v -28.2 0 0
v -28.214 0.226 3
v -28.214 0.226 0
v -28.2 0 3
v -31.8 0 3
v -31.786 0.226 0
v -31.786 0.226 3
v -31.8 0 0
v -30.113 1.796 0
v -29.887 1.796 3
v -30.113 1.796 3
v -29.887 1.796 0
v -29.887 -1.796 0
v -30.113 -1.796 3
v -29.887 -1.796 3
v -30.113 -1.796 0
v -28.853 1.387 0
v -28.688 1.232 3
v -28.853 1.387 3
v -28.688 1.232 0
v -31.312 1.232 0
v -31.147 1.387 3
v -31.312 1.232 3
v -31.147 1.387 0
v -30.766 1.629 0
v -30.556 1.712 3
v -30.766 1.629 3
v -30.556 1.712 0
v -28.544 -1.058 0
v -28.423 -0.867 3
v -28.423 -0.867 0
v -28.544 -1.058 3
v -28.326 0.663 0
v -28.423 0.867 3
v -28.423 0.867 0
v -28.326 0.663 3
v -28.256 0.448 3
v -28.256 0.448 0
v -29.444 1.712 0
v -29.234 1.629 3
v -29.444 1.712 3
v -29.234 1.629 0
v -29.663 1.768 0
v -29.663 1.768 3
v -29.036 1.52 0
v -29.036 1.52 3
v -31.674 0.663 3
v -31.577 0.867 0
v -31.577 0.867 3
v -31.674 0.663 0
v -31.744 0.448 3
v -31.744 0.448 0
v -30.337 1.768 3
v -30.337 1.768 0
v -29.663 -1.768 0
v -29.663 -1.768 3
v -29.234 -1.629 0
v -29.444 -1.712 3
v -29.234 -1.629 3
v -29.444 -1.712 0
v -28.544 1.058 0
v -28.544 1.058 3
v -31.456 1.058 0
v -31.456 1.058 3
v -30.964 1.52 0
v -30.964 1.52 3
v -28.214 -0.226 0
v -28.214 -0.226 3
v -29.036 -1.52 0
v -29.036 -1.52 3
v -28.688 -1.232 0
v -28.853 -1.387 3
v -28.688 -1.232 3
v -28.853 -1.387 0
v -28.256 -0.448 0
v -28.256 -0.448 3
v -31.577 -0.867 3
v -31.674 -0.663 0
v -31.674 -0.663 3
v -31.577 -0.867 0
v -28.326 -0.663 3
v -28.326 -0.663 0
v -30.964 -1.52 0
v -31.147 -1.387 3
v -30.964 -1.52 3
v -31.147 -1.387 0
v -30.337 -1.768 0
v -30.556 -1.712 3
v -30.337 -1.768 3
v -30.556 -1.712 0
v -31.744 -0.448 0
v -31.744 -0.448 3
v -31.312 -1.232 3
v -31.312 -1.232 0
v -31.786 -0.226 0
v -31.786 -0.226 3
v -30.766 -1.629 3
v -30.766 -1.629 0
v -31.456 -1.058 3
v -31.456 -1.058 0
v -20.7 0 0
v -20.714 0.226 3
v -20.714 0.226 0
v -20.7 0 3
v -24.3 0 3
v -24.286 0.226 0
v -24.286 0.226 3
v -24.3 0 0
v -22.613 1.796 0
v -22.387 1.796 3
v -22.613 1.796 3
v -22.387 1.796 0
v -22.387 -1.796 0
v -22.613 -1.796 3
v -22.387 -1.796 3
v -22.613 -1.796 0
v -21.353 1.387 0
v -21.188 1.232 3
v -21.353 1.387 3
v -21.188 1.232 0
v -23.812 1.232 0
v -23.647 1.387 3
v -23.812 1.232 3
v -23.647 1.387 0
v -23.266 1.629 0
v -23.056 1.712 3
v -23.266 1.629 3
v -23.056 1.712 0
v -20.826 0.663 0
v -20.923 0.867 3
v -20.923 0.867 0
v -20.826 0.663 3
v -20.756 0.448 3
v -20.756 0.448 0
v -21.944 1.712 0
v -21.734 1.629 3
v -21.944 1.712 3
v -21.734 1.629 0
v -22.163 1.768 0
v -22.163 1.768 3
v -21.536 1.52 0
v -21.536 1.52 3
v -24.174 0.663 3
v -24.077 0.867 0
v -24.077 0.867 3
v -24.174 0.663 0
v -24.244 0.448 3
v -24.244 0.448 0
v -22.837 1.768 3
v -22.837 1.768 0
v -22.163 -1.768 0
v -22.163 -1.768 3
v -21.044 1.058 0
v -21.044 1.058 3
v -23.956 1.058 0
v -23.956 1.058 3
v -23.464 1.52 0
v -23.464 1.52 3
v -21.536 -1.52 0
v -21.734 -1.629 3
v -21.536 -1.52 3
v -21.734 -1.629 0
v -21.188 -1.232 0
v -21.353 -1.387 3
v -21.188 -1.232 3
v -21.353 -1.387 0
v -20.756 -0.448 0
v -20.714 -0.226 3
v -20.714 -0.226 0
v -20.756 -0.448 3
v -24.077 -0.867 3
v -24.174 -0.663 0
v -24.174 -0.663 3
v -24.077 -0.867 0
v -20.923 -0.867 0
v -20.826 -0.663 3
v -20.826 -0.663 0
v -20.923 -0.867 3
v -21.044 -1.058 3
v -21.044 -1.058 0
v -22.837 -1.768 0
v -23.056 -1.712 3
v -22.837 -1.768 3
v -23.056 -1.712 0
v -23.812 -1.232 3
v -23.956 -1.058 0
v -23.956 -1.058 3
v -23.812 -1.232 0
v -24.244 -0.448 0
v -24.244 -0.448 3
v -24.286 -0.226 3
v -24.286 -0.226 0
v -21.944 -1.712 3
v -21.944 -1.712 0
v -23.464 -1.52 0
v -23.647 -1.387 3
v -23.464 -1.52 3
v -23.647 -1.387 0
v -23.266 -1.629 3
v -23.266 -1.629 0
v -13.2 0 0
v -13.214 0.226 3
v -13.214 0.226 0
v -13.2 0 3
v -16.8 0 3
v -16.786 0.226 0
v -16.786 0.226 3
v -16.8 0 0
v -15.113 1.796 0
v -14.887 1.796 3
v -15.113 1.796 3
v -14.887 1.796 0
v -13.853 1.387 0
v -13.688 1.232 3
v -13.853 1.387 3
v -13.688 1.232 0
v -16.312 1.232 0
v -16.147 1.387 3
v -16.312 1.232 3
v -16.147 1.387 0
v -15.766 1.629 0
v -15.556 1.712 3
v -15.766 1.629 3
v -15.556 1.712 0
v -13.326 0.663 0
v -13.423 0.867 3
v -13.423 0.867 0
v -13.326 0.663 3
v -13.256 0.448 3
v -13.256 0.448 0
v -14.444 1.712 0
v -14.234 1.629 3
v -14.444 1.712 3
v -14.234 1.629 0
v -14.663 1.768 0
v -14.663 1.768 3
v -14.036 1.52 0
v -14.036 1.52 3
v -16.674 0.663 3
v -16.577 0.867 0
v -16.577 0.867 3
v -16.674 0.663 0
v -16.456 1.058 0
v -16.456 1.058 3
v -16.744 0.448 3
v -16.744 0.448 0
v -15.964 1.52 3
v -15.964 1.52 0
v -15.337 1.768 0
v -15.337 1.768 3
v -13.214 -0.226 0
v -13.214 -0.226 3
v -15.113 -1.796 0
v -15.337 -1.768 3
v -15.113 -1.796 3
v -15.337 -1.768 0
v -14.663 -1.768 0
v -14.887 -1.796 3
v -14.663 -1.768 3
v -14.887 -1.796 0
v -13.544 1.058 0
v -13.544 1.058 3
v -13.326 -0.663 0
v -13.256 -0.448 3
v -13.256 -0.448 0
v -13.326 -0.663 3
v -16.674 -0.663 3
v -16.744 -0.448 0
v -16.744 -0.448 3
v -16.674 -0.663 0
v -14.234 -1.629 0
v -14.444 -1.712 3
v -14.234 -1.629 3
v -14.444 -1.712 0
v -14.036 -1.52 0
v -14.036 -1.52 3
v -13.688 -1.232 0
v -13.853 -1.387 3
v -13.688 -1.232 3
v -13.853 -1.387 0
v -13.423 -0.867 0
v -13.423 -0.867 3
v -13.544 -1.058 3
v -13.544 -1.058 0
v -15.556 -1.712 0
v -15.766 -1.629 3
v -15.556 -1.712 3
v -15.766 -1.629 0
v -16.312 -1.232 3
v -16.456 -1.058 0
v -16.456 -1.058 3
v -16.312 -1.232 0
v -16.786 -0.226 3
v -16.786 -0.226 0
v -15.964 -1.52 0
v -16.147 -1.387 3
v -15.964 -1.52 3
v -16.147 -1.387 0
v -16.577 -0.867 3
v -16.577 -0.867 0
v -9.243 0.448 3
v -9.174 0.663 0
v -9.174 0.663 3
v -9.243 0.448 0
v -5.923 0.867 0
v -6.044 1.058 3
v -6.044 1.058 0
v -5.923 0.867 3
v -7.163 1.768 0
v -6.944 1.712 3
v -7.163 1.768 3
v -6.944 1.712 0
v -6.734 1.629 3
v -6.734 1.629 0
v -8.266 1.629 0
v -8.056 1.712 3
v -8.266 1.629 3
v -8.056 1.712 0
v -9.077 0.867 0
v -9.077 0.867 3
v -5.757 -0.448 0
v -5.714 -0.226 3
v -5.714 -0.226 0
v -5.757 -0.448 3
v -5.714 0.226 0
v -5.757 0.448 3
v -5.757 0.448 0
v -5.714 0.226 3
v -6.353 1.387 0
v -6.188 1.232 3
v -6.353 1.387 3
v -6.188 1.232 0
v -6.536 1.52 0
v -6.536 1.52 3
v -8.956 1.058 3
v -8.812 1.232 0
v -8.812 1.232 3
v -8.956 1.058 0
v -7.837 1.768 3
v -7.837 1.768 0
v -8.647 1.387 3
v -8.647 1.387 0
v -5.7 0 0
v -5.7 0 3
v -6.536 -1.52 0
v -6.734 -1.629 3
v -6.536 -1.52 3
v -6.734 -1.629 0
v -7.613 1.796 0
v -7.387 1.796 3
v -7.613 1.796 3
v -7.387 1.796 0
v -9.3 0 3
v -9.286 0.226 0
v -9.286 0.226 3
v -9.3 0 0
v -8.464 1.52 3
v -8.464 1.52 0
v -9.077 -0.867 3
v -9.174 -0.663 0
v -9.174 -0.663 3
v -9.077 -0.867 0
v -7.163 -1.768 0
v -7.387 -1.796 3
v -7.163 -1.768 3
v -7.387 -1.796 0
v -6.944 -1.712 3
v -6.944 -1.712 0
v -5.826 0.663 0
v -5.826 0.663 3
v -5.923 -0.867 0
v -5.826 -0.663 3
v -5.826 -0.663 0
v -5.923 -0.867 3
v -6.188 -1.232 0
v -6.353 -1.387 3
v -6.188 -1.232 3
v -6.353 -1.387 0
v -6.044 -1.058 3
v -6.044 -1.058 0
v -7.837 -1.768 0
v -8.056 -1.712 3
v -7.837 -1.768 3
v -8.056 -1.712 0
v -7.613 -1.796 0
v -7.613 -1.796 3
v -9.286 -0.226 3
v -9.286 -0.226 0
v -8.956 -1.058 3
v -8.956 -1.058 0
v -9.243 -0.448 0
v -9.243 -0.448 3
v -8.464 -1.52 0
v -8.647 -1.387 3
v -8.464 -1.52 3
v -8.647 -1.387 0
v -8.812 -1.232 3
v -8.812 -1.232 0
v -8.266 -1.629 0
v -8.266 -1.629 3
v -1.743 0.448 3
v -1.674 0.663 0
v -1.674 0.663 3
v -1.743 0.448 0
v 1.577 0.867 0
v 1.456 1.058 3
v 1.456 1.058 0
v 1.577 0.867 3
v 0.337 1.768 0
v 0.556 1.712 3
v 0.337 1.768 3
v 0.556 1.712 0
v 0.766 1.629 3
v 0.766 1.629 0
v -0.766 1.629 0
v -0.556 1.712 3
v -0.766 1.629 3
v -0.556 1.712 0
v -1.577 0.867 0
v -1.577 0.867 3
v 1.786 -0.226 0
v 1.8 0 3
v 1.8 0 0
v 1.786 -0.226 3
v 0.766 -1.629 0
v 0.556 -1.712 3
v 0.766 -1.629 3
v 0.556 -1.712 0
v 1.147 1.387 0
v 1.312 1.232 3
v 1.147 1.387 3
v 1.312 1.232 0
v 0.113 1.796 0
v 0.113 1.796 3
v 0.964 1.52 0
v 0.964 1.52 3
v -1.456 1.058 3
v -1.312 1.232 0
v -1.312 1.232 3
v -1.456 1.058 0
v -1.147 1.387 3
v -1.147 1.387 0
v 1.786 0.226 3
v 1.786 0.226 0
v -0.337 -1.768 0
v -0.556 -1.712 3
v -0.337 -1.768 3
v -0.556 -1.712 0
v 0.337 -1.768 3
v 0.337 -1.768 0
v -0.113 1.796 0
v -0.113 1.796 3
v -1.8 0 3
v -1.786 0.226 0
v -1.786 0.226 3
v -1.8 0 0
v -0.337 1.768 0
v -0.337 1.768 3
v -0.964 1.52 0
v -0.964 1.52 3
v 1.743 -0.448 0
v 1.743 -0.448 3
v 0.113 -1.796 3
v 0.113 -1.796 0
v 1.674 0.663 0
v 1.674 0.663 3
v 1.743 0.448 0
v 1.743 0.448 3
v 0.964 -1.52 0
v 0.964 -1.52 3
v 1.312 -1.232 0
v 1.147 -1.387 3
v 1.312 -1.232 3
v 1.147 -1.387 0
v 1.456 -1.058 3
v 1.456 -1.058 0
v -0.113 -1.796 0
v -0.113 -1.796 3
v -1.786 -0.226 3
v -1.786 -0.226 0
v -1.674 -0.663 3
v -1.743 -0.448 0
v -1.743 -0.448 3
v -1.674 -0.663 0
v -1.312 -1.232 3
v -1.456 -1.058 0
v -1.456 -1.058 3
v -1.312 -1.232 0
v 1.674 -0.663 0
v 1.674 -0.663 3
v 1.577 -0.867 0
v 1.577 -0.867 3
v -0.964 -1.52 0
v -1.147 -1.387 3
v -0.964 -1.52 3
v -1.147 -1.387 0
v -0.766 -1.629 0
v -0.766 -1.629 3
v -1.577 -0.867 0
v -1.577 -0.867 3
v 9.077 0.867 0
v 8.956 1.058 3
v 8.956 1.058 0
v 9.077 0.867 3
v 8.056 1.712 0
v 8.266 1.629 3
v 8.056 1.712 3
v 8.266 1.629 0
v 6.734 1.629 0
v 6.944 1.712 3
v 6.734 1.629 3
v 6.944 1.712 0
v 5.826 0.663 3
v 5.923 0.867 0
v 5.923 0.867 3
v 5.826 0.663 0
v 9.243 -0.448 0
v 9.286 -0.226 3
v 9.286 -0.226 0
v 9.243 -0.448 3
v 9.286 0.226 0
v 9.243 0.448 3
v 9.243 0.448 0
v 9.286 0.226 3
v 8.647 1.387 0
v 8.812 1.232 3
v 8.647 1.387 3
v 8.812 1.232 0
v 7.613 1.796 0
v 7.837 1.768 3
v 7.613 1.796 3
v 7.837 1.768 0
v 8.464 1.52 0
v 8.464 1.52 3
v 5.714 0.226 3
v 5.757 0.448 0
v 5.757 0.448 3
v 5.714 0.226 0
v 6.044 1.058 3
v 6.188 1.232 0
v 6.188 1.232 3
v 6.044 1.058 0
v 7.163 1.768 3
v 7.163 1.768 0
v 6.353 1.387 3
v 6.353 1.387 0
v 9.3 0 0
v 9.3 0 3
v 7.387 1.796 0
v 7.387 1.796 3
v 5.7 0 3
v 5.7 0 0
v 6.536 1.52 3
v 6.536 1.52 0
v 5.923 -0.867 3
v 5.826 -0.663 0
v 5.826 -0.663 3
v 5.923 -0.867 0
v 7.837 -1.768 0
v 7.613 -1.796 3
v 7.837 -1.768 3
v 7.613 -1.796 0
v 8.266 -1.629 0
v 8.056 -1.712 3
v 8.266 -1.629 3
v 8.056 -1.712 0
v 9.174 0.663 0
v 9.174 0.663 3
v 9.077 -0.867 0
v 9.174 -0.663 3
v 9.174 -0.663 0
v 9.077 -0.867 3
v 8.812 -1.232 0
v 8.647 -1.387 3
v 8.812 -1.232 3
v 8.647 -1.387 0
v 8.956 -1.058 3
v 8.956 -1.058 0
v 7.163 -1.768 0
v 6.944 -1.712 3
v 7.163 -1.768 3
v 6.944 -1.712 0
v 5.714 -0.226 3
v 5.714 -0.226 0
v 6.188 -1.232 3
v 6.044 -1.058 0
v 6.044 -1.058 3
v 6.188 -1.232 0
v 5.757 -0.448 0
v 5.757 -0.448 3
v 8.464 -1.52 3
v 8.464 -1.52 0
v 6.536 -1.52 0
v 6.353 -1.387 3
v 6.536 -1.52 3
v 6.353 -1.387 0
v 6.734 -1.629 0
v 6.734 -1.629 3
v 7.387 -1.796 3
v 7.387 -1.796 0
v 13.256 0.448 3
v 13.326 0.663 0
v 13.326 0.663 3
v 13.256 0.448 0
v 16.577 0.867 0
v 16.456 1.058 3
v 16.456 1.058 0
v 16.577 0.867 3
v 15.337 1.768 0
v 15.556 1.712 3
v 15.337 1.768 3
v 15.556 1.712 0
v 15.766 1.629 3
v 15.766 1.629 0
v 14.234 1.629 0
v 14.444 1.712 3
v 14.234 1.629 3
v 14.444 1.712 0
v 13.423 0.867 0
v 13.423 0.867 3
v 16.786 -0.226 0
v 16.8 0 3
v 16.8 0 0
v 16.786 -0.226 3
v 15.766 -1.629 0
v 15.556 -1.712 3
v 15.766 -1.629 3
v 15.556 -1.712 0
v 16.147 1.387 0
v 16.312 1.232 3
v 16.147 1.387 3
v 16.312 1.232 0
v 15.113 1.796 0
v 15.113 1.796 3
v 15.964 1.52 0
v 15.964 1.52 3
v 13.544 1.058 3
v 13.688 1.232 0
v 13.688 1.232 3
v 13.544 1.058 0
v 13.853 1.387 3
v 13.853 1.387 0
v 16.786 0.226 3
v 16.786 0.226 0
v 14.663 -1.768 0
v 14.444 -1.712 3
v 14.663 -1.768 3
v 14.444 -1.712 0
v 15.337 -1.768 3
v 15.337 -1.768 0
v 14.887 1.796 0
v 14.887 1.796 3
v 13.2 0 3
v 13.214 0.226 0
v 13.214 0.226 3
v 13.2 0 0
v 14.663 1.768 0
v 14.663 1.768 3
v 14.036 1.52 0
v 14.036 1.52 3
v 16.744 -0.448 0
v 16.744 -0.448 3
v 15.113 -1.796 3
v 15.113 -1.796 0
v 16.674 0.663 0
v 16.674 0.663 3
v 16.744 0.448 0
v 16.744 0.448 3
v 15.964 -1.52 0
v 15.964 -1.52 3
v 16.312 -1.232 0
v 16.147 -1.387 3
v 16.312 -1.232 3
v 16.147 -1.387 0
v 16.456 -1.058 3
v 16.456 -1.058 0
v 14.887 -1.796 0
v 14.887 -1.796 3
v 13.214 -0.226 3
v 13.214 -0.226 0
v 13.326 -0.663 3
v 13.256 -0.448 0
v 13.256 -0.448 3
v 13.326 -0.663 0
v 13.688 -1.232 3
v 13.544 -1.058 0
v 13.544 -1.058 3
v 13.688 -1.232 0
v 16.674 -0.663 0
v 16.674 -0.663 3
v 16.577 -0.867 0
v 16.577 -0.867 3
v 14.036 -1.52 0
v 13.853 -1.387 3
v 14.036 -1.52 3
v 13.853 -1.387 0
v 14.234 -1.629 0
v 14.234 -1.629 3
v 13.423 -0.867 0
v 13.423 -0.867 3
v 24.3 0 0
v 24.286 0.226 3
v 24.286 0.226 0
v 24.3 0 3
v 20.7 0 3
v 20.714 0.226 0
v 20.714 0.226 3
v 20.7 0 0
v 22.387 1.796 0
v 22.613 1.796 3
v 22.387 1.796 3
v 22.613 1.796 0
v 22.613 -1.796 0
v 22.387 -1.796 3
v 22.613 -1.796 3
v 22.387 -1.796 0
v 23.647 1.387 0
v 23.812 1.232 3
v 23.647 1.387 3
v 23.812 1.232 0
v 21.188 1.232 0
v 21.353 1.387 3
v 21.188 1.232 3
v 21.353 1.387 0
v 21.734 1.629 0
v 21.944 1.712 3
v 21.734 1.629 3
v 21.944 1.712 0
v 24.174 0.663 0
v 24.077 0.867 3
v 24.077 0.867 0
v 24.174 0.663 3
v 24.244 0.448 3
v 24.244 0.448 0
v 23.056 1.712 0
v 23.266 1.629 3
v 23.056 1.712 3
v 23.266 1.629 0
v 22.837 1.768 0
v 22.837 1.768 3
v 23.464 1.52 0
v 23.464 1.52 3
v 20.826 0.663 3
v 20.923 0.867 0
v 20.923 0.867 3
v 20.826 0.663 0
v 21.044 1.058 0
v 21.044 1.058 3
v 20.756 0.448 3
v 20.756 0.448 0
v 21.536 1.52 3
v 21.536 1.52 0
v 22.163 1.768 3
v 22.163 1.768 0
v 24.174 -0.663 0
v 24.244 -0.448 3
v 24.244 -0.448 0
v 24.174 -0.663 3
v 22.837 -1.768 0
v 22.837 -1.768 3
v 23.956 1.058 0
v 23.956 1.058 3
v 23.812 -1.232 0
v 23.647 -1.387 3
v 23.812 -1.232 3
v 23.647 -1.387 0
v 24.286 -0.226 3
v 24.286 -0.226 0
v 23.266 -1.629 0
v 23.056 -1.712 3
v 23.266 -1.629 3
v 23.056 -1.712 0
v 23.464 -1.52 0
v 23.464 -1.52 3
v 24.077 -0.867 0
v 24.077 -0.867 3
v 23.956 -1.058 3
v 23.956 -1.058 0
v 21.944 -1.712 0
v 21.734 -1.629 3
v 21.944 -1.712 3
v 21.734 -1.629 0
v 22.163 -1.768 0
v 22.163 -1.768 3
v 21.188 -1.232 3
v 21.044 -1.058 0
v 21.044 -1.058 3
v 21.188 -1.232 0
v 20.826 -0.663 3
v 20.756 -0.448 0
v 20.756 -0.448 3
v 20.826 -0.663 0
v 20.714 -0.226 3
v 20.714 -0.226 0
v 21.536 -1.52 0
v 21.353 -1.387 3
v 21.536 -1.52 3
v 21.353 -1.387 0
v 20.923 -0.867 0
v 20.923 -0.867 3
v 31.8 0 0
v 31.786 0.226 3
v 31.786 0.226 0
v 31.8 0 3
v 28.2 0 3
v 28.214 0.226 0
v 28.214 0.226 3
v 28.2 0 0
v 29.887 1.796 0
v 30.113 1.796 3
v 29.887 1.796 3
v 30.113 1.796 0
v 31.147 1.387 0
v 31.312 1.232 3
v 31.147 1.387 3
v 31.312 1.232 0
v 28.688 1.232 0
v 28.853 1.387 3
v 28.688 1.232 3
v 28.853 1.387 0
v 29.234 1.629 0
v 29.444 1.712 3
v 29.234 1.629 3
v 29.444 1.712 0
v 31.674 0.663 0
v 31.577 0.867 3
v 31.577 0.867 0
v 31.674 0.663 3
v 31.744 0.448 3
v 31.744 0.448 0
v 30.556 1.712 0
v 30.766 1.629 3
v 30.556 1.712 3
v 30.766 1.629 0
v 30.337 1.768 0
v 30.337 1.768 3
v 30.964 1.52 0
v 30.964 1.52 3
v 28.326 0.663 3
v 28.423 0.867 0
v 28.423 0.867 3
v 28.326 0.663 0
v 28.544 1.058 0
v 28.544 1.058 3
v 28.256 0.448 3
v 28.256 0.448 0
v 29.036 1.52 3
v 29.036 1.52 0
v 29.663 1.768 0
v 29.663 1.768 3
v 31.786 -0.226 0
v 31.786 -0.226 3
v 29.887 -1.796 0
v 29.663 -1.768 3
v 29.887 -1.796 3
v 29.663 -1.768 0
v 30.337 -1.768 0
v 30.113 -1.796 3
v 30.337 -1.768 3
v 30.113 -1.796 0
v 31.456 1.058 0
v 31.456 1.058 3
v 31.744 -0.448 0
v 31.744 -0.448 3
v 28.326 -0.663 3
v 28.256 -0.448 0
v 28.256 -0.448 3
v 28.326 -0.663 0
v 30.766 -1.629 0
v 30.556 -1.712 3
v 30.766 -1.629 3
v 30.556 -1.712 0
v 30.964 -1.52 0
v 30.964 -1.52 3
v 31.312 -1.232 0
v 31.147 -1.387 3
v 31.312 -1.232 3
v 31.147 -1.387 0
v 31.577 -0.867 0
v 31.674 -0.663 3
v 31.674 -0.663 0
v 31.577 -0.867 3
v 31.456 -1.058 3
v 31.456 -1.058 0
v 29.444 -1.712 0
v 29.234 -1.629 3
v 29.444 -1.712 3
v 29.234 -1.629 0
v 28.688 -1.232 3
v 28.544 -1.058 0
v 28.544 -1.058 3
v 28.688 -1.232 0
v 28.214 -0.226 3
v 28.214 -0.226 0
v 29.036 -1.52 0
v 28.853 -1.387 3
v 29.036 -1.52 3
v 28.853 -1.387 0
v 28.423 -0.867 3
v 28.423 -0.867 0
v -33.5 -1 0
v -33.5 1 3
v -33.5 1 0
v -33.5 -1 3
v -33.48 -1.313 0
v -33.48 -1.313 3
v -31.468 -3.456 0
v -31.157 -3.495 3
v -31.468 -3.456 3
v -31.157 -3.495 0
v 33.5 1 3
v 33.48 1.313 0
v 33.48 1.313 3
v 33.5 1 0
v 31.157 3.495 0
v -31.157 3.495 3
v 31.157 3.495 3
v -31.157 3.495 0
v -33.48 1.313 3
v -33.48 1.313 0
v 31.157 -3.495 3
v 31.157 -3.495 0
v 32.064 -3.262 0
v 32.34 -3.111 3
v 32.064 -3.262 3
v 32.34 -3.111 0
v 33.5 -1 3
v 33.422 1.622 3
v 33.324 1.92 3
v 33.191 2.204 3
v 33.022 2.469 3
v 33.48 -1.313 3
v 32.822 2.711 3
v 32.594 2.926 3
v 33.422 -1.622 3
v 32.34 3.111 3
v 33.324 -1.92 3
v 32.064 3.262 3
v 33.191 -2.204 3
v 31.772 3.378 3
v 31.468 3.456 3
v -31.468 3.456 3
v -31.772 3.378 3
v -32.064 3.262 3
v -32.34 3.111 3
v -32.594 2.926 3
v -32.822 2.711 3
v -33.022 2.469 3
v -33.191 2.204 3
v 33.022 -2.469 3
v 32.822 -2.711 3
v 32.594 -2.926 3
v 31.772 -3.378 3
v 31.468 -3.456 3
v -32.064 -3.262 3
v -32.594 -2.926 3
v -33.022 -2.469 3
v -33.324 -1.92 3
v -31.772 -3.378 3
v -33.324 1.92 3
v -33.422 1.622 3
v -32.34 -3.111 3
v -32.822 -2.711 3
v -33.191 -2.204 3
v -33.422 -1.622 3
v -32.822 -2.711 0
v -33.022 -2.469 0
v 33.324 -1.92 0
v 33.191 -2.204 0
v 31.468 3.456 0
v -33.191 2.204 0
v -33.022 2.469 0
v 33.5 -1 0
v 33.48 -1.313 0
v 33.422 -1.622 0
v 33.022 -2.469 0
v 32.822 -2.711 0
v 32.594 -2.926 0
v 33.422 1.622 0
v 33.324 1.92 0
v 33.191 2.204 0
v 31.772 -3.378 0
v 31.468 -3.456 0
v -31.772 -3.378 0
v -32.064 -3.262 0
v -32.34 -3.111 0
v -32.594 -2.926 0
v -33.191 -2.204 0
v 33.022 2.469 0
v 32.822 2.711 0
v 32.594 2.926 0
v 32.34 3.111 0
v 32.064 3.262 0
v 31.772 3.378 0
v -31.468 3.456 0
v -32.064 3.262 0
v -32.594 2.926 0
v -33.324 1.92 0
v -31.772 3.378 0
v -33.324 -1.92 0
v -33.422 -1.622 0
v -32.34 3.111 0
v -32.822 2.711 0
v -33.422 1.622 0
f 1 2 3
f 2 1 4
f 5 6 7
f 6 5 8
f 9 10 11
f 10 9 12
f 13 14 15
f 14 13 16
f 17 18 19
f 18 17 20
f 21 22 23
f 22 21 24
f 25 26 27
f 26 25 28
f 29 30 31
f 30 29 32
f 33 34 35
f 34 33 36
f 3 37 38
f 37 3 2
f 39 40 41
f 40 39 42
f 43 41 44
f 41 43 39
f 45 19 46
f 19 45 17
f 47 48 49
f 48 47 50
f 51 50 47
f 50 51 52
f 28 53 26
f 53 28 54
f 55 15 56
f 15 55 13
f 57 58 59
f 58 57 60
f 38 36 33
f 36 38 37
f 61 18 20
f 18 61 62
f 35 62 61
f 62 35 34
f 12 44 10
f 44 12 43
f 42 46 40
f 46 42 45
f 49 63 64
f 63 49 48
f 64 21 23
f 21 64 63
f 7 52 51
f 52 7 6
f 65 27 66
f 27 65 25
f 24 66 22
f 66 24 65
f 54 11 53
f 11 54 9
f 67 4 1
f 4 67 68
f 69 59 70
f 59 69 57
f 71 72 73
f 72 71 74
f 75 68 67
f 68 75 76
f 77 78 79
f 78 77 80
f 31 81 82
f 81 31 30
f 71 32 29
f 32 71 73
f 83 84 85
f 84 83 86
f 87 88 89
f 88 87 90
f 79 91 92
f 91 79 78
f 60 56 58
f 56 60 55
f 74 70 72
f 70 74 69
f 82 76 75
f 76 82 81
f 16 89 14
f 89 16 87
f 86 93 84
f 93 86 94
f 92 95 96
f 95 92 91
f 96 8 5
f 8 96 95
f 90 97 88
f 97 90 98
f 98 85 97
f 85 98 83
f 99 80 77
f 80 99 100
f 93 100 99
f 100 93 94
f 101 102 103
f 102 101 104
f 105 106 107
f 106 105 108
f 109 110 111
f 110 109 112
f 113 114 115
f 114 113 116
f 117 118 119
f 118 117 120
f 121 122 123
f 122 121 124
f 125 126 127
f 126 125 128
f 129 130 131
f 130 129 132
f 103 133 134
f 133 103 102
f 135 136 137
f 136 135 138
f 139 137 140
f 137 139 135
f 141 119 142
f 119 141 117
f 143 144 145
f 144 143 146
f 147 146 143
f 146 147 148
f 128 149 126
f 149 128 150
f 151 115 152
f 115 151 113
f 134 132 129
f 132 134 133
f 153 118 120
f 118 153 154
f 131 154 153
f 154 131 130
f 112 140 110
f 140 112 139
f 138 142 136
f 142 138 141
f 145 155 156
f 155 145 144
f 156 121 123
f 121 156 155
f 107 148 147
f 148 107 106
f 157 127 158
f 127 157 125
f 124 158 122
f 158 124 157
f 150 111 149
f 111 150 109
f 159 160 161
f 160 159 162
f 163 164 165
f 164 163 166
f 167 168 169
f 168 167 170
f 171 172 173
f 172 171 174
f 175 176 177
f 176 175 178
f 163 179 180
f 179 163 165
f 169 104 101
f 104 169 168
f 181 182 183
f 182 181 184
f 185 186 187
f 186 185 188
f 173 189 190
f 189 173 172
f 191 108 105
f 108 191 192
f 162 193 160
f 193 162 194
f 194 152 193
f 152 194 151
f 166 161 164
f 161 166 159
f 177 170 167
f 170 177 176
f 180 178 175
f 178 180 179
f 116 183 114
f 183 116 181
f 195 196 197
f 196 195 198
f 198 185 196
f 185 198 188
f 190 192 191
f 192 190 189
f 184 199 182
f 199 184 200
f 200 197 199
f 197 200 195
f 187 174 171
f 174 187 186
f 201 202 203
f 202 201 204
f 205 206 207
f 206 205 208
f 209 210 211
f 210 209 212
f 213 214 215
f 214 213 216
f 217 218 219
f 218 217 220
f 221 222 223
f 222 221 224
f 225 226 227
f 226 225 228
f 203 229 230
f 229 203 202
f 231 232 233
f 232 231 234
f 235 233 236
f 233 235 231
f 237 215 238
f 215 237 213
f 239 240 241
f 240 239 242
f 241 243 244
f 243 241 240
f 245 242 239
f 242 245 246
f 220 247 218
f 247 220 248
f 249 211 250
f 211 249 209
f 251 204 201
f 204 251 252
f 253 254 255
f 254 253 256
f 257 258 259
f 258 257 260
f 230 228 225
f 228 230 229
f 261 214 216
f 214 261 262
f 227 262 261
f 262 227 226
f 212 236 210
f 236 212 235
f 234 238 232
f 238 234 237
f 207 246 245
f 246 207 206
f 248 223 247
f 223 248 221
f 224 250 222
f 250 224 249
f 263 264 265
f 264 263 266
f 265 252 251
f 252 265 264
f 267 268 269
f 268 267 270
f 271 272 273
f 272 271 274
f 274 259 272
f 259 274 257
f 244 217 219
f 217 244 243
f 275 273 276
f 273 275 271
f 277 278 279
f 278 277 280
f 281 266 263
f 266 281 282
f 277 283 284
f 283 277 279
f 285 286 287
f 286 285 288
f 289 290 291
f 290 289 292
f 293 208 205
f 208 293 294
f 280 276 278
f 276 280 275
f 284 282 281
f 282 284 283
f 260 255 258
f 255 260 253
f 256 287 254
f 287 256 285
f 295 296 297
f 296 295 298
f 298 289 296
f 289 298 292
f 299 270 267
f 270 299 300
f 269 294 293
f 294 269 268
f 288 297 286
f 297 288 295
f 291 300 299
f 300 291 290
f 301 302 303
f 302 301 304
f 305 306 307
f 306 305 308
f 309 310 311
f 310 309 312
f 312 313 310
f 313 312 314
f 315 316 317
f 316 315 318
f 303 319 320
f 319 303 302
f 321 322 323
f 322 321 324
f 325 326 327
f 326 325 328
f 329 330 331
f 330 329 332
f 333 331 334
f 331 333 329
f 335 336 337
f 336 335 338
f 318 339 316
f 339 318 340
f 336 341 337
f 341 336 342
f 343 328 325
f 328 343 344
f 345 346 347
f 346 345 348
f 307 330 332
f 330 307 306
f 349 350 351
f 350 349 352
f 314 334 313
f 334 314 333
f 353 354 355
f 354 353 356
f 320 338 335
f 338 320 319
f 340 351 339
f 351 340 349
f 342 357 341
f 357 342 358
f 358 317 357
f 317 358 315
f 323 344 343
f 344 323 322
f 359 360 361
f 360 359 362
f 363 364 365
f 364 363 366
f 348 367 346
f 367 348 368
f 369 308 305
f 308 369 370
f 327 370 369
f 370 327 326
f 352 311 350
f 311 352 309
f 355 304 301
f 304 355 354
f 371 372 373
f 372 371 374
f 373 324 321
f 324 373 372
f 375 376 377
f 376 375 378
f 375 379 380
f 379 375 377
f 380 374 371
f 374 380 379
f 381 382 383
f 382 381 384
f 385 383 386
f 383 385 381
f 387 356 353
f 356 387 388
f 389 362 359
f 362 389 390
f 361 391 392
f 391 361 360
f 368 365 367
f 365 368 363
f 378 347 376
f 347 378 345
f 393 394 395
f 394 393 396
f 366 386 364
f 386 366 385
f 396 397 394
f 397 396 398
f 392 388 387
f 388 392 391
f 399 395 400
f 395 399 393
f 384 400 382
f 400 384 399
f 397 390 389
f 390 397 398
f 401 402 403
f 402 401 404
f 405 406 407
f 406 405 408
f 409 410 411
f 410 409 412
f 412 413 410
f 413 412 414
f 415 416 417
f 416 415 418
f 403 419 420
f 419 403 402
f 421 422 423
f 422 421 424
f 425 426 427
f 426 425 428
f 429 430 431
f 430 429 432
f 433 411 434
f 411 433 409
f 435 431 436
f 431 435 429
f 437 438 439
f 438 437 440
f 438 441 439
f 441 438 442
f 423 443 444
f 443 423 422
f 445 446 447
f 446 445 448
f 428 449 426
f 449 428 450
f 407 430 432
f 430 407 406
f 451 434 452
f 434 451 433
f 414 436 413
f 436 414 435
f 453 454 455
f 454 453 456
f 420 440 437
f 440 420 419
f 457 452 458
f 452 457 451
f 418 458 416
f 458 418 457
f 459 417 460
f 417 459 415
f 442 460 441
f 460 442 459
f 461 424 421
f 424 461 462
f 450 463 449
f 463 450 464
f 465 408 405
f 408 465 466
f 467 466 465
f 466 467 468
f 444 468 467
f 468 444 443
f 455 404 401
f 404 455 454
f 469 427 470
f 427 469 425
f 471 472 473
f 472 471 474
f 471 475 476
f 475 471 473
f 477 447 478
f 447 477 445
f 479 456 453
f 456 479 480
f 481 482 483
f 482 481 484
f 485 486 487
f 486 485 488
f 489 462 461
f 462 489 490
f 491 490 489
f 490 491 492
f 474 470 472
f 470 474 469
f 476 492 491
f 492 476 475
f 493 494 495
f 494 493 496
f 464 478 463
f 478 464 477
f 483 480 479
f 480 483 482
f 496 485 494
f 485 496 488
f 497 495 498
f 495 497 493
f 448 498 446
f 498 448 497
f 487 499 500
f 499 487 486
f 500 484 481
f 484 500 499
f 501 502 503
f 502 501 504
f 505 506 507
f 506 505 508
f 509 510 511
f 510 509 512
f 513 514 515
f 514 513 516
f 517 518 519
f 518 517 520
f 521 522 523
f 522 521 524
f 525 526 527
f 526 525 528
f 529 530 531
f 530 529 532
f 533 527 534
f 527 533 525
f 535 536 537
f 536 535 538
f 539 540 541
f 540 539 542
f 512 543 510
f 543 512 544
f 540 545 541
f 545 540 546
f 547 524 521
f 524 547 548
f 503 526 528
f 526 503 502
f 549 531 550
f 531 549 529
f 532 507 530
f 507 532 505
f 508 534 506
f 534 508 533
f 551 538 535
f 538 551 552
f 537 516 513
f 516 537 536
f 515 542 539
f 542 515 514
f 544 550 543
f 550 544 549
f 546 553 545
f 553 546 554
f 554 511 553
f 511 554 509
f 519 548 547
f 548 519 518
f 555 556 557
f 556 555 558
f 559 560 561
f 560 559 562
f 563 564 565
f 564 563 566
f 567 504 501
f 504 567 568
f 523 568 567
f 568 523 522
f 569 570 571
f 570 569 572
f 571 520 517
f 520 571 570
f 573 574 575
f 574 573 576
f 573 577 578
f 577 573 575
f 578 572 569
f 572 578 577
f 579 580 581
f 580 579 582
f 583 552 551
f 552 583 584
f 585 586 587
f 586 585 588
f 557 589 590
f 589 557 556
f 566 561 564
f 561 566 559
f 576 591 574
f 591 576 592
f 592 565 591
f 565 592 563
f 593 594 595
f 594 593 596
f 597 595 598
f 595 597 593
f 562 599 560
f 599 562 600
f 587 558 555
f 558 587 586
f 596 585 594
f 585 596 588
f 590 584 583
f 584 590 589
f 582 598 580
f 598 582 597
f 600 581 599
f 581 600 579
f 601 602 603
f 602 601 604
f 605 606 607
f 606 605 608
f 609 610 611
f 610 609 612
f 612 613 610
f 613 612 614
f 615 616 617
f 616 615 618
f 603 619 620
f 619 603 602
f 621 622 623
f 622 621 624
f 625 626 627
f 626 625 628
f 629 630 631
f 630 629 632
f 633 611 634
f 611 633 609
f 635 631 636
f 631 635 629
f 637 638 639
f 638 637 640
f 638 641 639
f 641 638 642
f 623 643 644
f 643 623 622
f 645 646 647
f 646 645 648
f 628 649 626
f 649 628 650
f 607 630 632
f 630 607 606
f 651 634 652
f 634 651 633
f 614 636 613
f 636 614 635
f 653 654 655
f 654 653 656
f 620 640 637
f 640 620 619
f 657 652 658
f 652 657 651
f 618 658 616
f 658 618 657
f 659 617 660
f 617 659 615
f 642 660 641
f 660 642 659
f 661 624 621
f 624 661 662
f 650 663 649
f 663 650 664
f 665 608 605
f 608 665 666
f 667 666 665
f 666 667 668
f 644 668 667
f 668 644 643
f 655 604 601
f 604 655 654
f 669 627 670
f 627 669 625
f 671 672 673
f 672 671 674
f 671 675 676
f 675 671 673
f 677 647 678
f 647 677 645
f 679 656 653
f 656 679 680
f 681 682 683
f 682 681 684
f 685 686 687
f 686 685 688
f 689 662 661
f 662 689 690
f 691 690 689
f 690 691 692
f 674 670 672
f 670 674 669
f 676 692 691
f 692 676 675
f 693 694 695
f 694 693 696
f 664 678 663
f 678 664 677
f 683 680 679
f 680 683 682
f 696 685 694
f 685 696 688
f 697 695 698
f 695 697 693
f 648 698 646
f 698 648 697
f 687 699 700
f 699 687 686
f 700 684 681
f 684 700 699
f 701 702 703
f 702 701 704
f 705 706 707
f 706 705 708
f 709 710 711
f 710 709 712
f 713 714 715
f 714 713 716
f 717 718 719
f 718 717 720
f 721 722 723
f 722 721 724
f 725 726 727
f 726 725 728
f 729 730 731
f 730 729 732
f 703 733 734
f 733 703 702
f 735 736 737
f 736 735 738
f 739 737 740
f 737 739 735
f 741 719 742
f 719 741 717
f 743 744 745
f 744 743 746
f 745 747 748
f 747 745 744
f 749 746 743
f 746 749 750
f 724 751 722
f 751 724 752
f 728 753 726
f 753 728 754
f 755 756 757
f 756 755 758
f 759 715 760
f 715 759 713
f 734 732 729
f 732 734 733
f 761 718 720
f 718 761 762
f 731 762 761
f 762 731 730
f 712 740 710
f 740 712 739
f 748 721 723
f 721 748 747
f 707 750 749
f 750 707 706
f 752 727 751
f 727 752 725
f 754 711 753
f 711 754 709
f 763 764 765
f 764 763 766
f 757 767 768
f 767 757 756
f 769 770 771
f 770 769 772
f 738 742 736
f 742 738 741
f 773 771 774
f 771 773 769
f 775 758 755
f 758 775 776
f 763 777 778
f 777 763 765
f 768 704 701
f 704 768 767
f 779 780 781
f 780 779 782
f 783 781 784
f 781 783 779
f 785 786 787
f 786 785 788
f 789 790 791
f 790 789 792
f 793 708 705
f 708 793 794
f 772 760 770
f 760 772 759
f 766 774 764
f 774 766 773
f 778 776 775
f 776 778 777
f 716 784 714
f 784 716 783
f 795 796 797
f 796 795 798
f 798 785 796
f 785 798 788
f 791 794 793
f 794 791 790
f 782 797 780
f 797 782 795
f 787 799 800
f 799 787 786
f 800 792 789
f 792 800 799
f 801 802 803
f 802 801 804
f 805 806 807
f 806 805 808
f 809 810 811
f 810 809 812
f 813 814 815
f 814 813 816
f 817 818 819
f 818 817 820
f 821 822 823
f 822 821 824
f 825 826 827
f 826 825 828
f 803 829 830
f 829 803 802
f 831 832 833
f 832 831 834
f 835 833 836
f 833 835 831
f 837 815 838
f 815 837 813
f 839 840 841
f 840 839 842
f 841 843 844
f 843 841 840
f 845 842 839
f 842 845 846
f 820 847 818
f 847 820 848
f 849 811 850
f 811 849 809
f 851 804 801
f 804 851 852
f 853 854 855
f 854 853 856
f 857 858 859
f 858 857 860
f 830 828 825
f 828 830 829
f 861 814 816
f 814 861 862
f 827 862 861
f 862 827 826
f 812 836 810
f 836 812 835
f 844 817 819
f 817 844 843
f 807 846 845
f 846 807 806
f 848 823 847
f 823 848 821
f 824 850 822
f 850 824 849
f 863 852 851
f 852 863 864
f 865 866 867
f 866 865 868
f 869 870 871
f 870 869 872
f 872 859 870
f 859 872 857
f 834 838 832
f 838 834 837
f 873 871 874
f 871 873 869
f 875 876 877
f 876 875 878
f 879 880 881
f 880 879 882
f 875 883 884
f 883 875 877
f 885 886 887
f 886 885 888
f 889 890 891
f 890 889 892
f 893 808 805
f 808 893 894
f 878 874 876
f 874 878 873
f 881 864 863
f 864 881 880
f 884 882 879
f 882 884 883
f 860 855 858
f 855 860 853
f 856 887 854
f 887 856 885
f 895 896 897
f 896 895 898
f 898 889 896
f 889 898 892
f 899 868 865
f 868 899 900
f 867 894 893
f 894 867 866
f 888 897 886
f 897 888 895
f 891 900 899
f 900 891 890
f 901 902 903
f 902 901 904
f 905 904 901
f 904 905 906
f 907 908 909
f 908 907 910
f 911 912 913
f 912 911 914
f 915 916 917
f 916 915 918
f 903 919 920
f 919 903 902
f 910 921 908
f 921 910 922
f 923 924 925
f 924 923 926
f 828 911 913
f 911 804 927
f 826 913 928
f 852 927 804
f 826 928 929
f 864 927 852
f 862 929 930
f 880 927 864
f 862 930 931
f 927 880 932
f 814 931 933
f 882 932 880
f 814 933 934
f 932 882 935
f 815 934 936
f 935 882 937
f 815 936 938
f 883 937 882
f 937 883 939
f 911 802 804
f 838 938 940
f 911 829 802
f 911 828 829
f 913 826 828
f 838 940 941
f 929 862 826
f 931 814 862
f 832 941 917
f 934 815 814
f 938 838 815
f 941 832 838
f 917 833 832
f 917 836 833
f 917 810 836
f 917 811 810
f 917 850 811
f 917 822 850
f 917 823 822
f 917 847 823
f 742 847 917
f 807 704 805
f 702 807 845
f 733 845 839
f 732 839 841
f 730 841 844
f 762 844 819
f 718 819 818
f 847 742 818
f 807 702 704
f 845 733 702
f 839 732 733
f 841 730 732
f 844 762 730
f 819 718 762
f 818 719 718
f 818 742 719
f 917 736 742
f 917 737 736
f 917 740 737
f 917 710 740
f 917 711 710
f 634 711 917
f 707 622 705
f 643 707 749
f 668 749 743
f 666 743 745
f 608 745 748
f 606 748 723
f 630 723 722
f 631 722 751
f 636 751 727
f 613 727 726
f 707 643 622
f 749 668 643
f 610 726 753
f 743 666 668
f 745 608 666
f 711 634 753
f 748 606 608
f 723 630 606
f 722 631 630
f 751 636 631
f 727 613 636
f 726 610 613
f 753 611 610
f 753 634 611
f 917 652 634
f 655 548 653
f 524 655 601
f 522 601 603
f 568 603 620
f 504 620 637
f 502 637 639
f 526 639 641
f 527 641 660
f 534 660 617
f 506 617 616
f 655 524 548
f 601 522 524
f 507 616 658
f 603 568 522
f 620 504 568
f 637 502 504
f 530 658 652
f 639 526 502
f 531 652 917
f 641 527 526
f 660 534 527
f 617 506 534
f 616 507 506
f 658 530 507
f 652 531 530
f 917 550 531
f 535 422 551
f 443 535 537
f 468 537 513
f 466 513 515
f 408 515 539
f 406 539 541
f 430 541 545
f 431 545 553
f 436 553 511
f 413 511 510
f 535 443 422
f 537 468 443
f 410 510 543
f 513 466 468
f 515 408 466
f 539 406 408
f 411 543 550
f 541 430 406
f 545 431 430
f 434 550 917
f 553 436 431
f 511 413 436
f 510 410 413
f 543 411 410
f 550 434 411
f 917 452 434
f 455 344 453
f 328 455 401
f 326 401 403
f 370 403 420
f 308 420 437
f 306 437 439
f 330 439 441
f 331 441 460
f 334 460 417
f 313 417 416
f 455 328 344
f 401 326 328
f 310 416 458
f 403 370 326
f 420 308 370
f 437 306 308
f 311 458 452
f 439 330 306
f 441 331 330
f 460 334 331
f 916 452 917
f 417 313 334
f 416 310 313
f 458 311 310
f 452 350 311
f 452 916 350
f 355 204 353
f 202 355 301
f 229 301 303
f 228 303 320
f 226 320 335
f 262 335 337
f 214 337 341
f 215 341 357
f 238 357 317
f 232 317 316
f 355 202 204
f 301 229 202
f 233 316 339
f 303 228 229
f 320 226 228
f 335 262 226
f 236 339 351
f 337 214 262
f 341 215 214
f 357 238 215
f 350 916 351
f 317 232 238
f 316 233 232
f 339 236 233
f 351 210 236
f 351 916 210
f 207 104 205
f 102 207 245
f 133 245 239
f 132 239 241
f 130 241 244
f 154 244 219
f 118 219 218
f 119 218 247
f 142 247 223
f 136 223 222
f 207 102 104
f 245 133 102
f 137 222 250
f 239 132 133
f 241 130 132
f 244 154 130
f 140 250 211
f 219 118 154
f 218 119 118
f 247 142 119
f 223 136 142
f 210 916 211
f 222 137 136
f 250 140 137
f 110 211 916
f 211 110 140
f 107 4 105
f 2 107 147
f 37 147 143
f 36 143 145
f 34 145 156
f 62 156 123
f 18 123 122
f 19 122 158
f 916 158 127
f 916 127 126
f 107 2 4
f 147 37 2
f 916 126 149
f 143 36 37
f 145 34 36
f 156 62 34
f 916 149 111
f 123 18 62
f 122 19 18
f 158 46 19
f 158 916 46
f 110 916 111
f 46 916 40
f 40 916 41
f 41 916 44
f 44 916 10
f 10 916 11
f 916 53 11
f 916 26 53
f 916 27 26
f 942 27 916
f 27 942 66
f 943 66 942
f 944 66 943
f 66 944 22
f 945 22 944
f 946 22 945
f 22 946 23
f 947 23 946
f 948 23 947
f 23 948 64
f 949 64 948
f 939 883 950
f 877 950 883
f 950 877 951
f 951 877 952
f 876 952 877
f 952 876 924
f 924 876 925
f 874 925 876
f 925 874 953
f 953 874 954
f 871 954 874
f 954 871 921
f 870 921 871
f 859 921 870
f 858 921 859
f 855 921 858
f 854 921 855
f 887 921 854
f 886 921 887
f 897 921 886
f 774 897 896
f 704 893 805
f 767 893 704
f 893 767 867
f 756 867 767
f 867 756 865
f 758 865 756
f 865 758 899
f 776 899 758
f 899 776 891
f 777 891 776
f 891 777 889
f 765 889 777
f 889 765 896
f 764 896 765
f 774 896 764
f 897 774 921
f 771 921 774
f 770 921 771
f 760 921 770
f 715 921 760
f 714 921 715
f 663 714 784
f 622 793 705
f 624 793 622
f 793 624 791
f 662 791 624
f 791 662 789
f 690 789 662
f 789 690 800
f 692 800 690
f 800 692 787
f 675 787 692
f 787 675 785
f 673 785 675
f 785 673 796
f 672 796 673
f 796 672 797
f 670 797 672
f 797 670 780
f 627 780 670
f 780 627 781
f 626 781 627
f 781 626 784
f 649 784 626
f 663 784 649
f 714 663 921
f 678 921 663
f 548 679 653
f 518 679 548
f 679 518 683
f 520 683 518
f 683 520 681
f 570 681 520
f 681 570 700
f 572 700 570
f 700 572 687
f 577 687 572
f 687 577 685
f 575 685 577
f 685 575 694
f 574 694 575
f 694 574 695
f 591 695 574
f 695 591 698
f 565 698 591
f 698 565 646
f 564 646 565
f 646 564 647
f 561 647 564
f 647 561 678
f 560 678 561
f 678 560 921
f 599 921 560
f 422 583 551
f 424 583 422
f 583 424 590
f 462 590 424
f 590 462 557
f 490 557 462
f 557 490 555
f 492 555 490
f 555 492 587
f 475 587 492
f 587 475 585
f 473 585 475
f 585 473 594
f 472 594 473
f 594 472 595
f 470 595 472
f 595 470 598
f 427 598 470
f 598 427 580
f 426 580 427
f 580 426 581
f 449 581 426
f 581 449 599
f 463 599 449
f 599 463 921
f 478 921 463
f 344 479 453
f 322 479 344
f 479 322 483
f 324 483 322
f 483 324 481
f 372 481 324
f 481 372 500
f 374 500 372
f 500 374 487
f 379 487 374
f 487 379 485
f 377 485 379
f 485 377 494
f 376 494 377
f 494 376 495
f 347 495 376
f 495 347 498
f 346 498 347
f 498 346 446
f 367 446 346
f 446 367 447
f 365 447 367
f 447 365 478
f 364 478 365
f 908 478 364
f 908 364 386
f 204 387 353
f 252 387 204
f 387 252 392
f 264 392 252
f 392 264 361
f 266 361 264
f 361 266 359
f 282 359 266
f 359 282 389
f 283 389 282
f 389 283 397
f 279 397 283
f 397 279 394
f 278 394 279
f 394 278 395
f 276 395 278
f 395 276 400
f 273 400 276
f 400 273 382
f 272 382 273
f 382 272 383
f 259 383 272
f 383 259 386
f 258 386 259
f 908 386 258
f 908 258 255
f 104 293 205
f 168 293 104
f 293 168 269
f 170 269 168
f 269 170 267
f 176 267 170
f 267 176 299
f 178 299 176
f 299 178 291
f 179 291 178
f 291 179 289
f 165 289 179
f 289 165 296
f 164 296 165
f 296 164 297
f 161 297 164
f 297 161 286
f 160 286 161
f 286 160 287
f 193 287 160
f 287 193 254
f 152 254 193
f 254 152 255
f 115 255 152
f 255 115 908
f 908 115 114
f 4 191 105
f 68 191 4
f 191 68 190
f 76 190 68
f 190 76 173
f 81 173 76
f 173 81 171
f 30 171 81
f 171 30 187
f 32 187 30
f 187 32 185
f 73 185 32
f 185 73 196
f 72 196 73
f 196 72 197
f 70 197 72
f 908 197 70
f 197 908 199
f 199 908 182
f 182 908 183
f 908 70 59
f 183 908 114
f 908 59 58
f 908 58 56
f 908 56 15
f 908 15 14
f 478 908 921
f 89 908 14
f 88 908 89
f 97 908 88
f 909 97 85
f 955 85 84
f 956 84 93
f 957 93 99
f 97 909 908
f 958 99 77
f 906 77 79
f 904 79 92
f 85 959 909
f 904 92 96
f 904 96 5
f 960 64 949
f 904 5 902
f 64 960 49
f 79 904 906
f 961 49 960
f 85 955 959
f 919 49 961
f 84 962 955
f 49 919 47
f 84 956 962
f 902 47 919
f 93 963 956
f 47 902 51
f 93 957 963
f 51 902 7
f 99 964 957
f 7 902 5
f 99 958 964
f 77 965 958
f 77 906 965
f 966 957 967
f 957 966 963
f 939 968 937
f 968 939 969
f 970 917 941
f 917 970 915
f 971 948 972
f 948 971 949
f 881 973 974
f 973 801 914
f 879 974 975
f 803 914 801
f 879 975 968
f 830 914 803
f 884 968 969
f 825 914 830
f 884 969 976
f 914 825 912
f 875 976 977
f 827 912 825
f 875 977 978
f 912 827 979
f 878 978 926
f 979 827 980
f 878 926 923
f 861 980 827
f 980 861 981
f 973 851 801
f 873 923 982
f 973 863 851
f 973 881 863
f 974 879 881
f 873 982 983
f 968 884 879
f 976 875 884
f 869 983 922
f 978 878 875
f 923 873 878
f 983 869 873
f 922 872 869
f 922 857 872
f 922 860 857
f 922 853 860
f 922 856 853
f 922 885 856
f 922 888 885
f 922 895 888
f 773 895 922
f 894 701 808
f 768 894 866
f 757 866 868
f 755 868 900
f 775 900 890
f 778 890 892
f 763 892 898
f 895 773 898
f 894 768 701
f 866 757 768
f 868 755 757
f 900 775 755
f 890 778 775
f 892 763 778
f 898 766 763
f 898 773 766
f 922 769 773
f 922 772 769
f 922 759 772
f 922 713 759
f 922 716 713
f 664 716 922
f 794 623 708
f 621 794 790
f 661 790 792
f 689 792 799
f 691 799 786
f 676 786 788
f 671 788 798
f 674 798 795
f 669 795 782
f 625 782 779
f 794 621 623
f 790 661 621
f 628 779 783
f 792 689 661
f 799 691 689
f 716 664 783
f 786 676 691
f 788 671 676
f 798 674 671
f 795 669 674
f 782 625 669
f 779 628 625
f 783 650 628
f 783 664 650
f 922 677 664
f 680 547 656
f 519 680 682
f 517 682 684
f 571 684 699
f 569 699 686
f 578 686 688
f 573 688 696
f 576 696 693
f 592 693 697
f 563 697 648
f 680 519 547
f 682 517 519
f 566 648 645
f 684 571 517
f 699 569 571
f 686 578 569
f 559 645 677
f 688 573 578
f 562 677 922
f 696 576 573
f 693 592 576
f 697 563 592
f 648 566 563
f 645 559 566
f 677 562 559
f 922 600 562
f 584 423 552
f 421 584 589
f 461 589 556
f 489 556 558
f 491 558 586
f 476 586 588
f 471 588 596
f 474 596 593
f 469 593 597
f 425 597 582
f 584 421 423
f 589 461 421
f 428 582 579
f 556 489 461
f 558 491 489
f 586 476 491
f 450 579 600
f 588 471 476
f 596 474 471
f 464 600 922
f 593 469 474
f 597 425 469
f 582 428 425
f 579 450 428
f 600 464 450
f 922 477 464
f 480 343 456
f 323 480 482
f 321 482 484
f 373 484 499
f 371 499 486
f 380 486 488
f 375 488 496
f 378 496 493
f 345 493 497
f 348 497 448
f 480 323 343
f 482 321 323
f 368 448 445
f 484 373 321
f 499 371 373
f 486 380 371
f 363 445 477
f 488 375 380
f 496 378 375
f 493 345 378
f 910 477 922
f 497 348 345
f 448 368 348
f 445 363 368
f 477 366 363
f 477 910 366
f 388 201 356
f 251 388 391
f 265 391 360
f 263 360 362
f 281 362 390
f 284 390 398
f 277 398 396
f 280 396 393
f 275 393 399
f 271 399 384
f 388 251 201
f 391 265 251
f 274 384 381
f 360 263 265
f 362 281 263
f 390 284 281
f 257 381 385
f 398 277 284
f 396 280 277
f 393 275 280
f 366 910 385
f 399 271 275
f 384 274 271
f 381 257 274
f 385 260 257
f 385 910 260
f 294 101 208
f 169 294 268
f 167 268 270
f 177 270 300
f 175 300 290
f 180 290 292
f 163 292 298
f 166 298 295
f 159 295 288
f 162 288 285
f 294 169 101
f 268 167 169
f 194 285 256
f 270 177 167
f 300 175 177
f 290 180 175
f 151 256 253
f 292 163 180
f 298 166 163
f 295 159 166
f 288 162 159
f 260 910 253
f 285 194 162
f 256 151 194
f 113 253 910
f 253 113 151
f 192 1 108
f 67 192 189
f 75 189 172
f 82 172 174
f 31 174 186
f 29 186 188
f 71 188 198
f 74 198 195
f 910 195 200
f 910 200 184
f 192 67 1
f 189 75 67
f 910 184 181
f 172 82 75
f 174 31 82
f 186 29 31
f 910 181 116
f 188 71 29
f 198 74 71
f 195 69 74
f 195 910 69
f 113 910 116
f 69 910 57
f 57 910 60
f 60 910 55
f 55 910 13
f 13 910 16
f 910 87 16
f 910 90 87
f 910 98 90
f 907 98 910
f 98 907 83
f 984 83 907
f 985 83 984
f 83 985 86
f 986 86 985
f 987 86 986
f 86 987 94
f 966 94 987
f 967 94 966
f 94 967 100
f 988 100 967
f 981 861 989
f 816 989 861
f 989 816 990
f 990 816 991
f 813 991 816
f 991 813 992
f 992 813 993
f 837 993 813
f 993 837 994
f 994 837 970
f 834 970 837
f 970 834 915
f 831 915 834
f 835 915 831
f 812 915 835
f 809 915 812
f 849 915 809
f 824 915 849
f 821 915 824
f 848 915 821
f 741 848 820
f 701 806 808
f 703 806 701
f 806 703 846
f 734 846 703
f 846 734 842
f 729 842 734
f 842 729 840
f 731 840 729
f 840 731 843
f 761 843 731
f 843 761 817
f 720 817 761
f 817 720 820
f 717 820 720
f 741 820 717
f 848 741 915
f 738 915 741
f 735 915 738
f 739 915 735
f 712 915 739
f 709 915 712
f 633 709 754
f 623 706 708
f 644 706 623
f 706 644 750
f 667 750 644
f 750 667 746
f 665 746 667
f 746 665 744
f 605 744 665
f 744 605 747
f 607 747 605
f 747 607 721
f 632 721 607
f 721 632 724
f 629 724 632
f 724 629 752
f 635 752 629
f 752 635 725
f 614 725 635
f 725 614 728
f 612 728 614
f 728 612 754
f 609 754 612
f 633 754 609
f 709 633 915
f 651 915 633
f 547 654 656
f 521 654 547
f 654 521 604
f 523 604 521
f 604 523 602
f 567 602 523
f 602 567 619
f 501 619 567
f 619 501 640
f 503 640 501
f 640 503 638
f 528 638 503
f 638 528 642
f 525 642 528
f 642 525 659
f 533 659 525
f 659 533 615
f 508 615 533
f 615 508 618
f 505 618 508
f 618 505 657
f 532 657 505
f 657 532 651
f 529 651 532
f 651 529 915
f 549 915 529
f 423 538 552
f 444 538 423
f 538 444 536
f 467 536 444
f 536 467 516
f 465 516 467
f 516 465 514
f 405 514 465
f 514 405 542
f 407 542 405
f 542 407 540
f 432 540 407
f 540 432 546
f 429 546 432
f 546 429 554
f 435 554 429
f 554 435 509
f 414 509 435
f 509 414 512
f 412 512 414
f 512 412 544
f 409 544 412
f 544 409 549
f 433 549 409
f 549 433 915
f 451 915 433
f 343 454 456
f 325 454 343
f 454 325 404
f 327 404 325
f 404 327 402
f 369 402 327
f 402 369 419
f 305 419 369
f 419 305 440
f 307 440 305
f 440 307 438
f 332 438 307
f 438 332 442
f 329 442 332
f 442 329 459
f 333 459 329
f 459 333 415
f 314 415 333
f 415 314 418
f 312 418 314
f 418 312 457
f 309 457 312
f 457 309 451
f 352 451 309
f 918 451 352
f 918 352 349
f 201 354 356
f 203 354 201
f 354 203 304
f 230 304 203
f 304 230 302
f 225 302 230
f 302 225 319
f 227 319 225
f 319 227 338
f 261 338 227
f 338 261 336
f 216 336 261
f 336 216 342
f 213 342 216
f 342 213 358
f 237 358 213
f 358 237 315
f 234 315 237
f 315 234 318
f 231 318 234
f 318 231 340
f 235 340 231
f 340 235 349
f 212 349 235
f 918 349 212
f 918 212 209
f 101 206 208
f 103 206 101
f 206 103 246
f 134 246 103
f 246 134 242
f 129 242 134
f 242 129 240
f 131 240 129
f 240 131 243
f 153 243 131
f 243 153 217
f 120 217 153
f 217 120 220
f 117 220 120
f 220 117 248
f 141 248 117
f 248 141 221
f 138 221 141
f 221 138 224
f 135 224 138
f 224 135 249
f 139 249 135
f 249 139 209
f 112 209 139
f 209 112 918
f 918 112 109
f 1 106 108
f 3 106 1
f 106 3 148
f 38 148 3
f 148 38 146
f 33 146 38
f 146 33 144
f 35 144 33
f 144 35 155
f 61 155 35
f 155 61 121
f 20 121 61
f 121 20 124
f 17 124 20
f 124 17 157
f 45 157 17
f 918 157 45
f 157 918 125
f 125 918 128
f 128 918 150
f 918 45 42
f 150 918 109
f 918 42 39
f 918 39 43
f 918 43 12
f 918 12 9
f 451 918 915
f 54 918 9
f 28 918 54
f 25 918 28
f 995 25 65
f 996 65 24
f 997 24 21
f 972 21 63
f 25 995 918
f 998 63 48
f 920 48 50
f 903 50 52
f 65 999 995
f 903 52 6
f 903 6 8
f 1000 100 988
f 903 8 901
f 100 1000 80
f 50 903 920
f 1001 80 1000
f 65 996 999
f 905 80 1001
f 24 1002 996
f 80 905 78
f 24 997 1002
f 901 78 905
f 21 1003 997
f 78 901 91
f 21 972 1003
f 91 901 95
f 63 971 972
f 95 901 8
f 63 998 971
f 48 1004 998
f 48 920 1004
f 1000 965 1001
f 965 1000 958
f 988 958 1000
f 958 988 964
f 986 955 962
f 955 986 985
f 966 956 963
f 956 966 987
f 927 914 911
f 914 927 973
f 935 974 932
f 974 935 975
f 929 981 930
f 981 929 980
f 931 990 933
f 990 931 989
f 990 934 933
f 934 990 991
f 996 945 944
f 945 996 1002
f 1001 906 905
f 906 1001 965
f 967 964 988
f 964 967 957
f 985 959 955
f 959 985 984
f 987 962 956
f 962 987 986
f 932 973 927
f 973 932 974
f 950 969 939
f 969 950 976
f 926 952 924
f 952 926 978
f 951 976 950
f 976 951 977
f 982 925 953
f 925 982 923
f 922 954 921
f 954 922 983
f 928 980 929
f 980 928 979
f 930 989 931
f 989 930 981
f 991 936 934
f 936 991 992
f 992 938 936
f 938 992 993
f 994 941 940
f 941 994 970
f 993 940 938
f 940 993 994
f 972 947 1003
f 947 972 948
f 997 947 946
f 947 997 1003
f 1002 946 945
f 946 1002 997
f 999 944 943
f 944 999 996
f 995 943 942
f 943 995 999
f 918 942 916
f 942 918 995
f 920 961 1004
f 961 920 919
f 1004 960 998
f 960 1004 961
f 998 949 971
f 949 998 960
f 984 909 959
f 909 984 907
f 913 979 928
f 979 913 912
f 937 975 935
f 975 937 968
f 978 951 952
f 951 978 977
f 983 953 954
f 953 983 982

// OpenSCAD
$fn = 50;


difference() {
	union() {
		translate(v = [0, 0, 0]) {
			rotate(a = [0, 0, 0]) {
				hull() {
					translate(v = [-31.0000000000, 1.0000000000, 0]) {
						rotate(a = [0, 0, 0]) {
							translate(v = [0, 0, 0]) {
								rotate(a = [0, 0, 0]) {
									cylinder(h = 3, r = 2.5000000000);
								}
							}
						}
					}
					translate(v = [31.0000000000, 1.0000000000, 0]) {
						rotate(a = [0, 0, 0]) {
							translate(v = [0, 0, 0]) {
								rotate(a = [0, 0, 0]) {
									cylinder(h = 3, r = 2.5000000000);
								}
							}
						}
					}
					translate(v = [-31.0000000000, -1.0000000000, 0]) {
						rotate(a = [0, 0, 0]) {
							translate(v = [0, 0, 0]) {
								rotate(a = [0, 0, 0]) {
									cylinder(h = 3, r = 2.5000000000);
								}
							}
						}
					}
					translate(v = [31.0000000000, -1.0000000000, 0]) {
						rotate(a = [0, 0, 0]) {
							translate(v = [0, 0, 0]) {
								rotate(a = [0, 0, 0]) {
									cylinder(h = 3, r = 2.5000000000);
								}
							}
						}
					}
				}
			}
		}
	}
	union() {
		translate(v = [-30.0000000000, 0.0000000000, 0]) {
			rotate(a = [0, 0, 0]) {
				translate(v = [0, 0, -50]) {
					rotate(a = [0, 0, 0]) {
						cylinder(h = 100, r = 1.8000000000);
					}
				}
			}
		}
		translate(v = [-22.5000000000, 0.0000000000, 0]) {
			rotate(a = [0, 0, 0]) {
				translate(v = [0, 0, -50]) {
					rotate(a = [0, 0, 0]) {
						cylinder(h = 100, r = 1.8000000000);
					}
				}
			}
		}
		translate(v = [-15.0000000000, 0.0000000000, 0]) {
			rotate(a = [0, 0, 0]) {
				translate(v = [0, 0, -50]) {
					rotate(a = [0, 0, 0]) {
						cylinder(h = 100, r = 1.8000000000);
					}
				}
			}
		}
		translate(v = [-7.5000000000, 0.0000000000, 0]) {
			rotate(a = [0, 0, 0]) {
				translate(v = [0, 0, -50]) {
					rotate(a = [0, 0, 0]) {
						cylinder(h = 100, r = 1.8000000000);
					}
				}
			}
		}
		translate(v = [0.0000000000, 0.0000000000, 0]) {
			rotate(a = [0, 0, 0]) {
				translate(v = [0, 0, -50]) {
					rotate(a = [0, 0, 0]) {
						cylinder(h = 100, r = 1.8000000000);
					}
				}
			}
		}
		translate(v = [7.5000000000, 0.0000000000, 0]) {
			rotate(a = [0, 0, 0]) {
				translate(v = [0, 0, -50]) {
					rotate(a = [0, 0, 0]) {
						cylinder(h = 100, r = 1.8000000000);
					}
				}
			}
		}
		translate(v = [15.0000000000, 0.0000000000, 0]) {
			rotate(a = [0, 0, 0]) {
				translate(v = [0, 0, -50]) {
					rotate(a = [0, 0, 0]) {
						cylinder(h = 100, r = 1.8000000000);
					}
				}
			}
		}
		translate(v = [22.5000000000, 0.0000000000, 0]) {
			rotate(a = [0, 0, 0]) {
				translate(v = [0, 0, -50]) {
					rotate(a = [0, 0, 0]) {
						cylinder(h = 100, r = 1.8000000000);
					}
				}
			}
		}
		translate(v = [30.0000000000, 0.0000000000, 0]) {
			rotate(a = [0, 0, 0]) {
				translate(v = [0, 0, -50]) {
					rotate(a = [0, 0, 0]) {
						cylinder(h = 100, r = 1.8000000000);
					}
				}
			}
		}
	}
}
